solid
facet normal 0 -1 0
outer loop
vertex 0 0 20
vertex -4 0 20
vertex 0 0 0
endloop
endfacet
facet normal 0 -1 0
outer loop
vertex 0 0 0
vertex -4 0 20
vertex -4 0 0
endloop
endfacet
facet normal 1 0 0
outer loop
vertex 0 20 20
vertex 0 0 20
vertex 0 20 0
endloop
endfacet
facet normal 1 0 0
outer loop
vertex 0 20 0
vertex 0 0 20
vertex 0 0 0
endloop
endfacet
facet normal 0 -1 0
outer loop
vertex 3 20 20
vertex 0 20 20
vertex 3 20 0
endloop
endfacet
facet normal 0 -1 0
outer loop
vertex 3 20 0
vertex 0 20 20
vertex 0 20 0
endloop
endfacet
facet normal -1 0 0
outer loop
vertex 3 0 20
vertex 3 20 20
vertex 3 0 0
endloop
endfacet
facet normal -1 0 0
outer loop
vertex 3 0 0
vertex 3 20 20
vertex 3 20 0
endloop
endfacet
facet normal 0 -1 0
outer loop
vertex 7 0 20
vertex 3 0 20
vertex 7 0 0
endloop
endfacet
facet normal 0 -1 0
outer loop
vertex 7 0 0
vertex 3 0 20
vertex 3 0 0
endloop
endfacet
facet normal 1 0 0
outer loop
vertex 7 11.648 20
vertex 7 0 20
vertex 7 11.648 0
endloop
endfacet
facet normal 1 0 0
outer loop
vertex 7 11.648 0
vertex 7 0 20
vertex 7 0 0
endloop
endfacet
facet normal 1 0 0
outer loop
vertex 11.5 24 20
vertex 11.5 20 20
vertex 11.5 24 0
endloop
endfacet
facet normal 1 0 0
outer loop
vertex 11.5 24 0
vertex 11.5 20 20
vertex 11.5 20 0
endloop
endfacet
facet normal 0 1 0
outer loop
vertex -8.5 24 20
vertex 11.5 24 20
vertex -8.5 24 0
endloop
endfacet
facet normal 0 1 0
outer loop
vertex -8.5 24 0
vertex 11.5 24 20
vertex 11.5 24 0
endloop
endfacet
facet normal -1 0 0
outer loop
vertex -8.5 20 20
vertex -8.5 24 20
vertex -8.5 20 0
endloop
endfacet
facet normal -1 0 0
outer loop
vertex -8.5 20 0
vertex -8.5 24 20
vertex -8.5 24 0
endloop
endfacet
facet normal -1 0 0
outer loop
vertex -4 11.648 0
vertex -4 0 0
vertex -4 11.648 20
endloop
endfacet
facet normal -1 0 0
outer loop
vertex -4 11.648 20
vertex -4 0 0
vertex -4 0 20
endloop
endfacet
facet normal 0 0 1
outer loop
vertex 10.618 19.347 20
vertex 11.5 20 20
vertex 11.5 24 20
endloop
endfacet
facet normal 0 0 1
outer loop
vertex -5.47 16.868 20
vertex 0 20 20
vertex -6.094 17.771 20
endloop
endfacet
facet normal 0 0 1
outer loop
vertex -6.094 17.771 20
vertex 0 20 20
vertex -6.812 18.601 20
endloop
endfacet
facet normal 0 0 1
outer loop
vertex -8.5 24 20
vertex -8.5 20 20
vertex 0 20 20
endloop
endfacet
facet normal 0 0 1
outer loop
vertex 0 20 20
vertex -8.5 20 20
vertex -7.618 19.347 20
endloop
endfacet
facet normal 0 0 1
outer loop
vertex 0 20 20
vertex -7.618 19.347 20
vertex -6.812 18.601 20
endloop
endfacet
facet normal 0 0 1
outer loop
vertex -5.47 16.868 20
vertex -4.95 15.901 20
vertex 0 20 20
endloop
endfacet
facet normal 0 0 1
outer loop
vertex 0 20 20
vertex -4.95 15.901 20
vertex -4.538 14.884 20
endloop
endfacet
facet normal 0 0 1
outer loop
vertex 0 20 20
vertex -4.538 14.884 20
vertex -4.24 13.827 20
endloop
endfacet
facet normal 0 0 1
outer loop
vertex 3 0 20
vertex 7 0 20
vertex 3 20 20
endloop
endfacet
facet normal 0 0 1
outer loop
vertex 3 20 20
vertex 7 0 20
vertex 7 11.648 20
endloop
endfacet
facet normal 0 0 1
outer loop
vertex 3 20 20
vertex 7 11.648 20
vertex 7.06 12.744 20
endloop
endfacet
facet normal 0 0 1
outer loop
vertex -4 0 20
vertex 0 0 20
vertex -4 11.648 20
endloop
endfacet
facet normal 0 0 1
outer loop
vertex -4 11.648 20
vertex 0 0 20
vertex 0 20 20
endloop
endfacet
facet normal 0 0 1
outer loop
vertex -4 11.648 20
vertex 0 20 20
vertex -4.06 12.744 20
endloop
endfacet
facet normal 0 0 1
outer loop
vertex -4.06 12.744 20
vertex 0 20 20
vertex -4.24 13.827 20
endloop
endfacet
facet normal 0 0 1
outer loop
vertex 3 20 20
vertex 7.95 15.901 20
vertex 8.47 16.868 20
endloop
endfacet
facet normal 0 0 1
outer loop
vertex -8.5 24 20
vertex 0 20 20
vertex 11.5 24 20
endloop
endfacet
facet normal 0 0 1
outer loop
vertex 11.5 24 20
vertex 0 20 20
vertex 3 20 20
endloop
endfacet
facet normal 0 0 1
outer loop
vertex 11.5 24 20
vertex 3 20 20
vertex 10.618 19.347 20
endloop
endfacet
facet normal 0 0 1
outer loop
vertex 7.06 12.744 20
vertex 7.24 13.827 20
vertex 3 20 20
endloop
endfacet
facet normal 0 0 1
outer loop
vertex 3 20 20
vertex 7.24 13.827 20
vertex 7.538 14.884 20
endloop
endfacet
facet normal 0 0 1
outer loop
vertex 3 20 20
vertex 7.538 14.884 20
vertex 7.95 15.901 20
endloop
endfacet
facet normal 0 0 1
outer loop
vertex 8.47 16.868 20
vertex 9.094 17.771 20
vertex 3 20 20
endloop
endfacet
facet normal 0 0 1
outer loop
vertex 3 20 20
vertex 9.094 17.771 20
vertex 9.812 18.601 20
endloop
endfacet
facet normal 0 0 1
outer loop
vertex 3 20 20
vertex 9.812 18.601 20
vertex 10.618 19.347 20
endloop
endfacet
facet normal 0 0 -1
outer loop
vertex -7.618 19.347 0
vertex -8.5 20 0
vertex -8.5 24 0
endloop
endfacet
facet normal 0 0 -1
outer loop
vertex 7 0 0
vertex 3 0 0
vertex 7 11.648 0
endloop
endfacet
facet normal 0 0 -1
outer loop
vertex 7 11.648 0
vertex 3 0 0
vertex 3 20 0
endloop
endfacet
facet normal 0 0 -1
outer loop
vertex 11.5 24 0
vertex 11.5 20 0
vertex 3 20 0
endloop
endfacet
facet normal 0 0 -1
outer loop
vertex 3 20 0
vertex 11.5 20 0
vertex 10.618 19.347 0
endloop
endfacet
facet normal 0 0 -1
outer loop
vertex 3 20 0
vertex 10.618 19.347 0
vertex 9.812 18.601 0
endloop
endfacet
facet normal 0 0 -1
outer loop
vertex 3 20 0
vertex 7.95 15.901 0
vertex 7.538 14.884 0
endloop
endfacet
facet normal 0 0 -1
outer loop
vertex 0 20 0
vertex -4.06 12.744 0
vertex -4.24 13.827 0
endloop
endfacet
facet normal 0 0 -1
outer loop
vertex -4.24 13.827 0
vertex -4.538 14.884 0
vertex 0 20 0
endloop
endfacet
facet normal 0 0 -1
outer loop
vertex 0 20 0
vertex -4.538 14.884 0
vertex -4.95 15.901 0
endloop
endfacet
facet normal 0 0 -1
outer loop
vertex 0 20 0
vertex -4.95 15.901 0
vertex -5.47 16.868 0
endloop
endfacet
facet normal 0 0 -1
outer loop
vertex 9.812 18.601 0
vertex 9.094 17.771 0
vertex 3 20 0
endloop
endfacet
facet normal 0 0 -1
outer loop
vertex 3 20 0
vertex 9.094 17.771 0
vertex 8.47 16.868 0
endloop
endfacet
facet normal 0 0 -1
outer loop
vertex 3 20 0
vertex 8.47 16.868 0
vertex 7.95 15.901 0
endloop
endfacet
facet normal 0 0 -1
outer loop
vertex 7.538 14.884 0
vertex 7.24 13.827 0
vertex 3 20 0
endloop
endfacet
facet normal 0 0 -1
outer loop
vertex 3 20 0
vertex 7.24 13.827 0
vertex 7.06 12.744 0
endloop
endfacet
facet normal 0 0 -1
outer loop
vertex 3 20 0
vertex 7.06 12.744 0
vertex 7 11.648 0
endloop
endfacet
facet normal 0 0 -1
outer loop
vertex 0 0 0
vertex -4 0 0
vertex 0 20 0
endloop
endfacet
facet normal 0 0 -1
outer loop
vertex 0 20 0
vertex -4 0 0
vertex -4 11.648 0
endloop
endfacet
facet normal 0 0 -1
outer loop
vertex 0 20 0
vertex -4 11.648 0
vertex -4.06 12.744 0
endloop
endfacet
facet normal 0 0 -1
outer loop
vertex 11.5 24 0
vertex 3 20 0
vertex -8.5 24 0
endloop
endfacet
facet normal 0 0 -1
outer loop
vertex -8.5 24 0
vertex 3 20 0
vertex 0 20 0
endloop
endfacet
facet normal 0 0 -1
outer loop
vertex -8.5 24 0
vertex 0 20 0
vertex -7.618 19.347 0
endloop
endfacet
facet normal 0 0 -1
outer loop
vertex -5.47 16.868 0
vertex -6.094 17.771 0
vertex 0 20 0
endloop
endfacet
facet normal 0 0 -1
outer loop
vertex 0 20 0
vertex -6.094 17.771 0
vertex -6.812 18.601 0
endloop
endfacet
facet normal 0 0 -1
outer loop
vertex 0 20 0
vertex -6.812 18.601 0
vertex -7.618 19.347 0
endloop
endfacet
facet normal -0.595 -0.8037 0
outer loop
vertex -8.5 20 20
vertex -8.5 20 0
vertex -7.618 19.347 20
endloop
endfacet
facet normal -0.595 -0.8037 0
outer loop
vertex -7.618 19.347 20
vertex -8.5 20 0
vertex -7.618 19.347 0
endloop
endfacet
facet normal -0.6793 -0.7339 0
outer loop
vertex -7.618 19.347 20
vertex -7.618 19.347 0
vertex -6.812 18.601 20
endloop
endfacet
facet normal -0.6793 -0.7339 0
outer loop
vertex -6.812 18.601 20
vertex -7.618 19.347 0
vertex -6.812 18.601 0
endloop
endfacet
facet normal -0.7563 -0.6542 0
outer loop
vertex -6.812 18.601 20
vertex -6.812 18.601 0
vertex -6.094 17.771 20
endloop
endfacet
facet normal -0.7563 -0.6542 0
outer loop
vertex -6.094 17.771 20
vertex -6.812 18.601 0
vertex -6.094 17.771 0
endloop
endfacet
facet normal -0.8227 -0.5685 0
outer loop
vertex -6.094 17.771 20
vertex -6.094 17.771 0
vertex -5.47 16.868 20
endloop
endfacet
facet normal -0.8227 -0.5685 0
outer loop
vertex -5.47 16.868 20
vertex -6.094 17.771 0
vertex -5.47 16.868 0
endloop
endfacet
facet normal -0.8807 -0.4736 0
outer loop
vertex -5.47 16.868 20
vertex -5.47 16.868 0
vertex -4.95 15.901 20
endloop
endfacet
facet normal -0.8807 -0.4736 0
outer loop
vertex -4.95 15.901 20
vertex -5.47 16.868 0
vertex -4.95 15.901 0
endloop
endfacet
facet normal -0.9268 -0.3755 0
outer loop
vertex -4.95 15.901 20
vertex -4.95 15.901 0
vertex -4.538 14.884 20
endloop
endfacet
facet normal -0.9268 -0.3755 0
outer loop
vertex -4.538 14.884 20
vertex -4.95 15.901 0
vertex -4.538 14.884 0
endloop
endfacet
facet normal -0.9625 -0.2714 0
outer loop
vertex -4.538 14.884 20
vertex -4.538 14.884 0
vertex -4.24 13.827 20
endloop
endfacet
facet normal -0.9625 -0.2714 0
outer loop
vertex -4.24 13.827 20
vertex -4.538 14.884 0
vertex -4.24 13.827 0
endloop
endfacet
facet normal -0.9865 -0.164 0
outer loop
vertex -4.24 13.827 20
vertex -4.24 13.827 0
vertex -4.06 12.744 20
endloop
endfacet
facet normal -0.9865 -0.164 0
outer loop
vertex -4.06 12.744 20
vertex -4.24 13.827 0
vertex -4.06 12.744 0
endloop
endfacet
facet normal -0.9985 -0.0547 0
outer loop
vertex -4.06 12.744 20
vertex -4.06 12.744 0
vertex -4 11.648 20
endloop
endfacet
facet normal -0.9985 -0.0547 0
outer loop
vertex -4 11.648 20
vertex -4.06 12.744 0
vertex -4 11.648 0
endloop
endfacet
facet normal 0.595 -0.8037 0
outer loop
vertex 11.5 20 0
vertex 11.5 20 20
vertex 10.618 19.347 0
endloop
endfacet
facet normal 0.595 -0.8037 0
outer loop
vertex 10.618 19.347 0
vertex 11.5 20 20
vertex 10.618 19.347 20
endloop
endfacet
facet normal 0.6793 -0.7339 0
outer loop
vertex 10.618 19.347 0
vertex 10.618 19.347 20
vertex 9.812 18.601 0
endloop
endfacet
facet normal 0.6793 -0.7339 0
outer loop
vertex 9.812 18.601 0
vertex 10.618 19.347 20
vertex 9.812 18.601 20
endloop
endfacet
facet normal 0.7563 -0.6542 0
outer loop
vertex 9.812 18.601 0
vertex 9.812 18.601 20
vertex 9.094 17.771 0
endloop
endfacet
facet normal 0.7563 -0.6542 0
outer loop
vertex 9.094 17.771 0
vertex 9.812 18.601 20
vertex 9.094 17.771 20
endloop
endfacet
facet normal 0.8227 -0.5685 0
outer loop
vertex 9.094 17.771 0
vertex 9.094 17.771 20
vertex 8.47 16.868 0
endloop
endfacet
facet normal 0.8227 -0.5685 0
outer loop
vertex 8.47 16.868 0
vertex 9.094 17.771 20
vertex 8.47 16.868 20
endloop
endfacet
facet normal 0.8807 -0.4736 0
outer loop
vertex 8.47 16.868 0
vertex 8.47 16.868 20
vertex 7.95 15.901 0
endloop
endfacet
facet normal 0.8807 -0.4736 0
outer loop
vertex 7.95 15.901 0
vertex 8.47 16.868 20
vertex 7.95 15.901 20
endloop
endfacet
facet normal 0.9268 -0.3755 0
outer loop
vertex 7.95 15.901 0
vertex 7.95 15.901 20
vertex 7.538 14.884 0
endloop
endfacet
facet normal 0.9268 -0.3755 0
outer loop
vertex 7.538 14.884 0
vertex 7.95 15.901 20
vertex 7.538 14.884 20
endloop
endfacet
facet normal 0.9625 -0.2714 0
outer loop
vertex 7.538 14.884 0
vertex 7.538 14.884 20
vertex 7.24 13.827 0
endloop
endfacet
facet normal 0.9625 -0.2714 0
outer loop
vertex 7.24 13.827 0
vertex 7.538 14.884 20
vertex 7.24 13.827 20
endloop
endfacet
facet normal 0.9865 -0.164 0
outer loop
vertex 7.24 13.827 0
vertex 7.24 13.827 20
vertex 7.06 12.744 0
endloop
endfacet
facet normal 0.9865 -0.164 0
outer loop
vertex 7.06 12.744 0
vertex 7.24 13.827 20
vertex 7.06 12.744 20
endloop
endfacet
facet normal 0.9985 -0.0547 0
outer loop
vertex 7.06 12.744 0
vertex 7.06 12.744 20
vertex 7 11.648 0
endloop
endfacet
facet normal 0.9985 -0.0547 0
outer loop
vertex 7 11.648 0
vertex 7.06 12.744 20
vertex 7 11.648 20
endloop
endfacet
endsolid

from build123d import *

# Parameters (mm, degrees)
BOSS_EXTRUDE1_DEPTH = 20
FILLET1_R           = 10


with BuildPart() as part:
    # Sketch1 → Boss-Extrude1 (new body)
    with BuildSketch(Plane.XY):
        Polygon((0, 0), (0, 20), (3, 20), (3, 0), (7, 0), (7, 20), (11.5, 20), (11.5, 24), (-8.5, 24), (-8.5, 20), (-4, 20), (-4, 0), align=None)
    extrude(amount=BOSS_EXTRUDE1_DEPTH)

    # Fillet1
    # the kernel refuses this fillet: 10 mm, written as the material it adds along each edge
    with BuildSketch(Plane(origin=(-4, 20, 0), x_dir=(-1.0, -1.533193325383024e-12, 0), z_dir=(0, 0, 1))) as fillet1_piece_1:
        with BuildLine():
            CenterArc((10, 8.351646544), FILLET1_R, 180, 56.632987031)
            Line((0, 8.351646544), (-0.2, 8.351646544))
            Line((-0.2, 8.351646544), (-0.2, 0))
            Line((-0.2, 0), (0, -0.2))
            ThreePointArc((0, -0.2), (2.25, -0.2), (4.39, -0.167032931))
            Line((4.39, -0.167032931), (4.5, 0))
        make_face()
    extrude(amount=20)
    with BuildSketch(Plane(origin=(7, 20, 0), x_dir=(0, -1, 0), z_dir=(0, 0, 1))) as fillet1_piece_2:
        with BuildLine():
            CenterArc((8.351646544, 10), FILLET1_R, 213.367012969, 56.632987031)
            Line((0, 4.5), (-0.167032931, 4.39))
            ThreePointArc((-0.167032931, 4.39), (-0.2, 2.25), (-0.2, 0))
            Line((-0.2, 0), (0, -0.2))
            Line((0, -0.2), (8.351646544, -0.2))
            Line((8.351646544, -0.2), (8.351646544, 0))
        make_face()
    extrude(amount=20)


solid = part.part
